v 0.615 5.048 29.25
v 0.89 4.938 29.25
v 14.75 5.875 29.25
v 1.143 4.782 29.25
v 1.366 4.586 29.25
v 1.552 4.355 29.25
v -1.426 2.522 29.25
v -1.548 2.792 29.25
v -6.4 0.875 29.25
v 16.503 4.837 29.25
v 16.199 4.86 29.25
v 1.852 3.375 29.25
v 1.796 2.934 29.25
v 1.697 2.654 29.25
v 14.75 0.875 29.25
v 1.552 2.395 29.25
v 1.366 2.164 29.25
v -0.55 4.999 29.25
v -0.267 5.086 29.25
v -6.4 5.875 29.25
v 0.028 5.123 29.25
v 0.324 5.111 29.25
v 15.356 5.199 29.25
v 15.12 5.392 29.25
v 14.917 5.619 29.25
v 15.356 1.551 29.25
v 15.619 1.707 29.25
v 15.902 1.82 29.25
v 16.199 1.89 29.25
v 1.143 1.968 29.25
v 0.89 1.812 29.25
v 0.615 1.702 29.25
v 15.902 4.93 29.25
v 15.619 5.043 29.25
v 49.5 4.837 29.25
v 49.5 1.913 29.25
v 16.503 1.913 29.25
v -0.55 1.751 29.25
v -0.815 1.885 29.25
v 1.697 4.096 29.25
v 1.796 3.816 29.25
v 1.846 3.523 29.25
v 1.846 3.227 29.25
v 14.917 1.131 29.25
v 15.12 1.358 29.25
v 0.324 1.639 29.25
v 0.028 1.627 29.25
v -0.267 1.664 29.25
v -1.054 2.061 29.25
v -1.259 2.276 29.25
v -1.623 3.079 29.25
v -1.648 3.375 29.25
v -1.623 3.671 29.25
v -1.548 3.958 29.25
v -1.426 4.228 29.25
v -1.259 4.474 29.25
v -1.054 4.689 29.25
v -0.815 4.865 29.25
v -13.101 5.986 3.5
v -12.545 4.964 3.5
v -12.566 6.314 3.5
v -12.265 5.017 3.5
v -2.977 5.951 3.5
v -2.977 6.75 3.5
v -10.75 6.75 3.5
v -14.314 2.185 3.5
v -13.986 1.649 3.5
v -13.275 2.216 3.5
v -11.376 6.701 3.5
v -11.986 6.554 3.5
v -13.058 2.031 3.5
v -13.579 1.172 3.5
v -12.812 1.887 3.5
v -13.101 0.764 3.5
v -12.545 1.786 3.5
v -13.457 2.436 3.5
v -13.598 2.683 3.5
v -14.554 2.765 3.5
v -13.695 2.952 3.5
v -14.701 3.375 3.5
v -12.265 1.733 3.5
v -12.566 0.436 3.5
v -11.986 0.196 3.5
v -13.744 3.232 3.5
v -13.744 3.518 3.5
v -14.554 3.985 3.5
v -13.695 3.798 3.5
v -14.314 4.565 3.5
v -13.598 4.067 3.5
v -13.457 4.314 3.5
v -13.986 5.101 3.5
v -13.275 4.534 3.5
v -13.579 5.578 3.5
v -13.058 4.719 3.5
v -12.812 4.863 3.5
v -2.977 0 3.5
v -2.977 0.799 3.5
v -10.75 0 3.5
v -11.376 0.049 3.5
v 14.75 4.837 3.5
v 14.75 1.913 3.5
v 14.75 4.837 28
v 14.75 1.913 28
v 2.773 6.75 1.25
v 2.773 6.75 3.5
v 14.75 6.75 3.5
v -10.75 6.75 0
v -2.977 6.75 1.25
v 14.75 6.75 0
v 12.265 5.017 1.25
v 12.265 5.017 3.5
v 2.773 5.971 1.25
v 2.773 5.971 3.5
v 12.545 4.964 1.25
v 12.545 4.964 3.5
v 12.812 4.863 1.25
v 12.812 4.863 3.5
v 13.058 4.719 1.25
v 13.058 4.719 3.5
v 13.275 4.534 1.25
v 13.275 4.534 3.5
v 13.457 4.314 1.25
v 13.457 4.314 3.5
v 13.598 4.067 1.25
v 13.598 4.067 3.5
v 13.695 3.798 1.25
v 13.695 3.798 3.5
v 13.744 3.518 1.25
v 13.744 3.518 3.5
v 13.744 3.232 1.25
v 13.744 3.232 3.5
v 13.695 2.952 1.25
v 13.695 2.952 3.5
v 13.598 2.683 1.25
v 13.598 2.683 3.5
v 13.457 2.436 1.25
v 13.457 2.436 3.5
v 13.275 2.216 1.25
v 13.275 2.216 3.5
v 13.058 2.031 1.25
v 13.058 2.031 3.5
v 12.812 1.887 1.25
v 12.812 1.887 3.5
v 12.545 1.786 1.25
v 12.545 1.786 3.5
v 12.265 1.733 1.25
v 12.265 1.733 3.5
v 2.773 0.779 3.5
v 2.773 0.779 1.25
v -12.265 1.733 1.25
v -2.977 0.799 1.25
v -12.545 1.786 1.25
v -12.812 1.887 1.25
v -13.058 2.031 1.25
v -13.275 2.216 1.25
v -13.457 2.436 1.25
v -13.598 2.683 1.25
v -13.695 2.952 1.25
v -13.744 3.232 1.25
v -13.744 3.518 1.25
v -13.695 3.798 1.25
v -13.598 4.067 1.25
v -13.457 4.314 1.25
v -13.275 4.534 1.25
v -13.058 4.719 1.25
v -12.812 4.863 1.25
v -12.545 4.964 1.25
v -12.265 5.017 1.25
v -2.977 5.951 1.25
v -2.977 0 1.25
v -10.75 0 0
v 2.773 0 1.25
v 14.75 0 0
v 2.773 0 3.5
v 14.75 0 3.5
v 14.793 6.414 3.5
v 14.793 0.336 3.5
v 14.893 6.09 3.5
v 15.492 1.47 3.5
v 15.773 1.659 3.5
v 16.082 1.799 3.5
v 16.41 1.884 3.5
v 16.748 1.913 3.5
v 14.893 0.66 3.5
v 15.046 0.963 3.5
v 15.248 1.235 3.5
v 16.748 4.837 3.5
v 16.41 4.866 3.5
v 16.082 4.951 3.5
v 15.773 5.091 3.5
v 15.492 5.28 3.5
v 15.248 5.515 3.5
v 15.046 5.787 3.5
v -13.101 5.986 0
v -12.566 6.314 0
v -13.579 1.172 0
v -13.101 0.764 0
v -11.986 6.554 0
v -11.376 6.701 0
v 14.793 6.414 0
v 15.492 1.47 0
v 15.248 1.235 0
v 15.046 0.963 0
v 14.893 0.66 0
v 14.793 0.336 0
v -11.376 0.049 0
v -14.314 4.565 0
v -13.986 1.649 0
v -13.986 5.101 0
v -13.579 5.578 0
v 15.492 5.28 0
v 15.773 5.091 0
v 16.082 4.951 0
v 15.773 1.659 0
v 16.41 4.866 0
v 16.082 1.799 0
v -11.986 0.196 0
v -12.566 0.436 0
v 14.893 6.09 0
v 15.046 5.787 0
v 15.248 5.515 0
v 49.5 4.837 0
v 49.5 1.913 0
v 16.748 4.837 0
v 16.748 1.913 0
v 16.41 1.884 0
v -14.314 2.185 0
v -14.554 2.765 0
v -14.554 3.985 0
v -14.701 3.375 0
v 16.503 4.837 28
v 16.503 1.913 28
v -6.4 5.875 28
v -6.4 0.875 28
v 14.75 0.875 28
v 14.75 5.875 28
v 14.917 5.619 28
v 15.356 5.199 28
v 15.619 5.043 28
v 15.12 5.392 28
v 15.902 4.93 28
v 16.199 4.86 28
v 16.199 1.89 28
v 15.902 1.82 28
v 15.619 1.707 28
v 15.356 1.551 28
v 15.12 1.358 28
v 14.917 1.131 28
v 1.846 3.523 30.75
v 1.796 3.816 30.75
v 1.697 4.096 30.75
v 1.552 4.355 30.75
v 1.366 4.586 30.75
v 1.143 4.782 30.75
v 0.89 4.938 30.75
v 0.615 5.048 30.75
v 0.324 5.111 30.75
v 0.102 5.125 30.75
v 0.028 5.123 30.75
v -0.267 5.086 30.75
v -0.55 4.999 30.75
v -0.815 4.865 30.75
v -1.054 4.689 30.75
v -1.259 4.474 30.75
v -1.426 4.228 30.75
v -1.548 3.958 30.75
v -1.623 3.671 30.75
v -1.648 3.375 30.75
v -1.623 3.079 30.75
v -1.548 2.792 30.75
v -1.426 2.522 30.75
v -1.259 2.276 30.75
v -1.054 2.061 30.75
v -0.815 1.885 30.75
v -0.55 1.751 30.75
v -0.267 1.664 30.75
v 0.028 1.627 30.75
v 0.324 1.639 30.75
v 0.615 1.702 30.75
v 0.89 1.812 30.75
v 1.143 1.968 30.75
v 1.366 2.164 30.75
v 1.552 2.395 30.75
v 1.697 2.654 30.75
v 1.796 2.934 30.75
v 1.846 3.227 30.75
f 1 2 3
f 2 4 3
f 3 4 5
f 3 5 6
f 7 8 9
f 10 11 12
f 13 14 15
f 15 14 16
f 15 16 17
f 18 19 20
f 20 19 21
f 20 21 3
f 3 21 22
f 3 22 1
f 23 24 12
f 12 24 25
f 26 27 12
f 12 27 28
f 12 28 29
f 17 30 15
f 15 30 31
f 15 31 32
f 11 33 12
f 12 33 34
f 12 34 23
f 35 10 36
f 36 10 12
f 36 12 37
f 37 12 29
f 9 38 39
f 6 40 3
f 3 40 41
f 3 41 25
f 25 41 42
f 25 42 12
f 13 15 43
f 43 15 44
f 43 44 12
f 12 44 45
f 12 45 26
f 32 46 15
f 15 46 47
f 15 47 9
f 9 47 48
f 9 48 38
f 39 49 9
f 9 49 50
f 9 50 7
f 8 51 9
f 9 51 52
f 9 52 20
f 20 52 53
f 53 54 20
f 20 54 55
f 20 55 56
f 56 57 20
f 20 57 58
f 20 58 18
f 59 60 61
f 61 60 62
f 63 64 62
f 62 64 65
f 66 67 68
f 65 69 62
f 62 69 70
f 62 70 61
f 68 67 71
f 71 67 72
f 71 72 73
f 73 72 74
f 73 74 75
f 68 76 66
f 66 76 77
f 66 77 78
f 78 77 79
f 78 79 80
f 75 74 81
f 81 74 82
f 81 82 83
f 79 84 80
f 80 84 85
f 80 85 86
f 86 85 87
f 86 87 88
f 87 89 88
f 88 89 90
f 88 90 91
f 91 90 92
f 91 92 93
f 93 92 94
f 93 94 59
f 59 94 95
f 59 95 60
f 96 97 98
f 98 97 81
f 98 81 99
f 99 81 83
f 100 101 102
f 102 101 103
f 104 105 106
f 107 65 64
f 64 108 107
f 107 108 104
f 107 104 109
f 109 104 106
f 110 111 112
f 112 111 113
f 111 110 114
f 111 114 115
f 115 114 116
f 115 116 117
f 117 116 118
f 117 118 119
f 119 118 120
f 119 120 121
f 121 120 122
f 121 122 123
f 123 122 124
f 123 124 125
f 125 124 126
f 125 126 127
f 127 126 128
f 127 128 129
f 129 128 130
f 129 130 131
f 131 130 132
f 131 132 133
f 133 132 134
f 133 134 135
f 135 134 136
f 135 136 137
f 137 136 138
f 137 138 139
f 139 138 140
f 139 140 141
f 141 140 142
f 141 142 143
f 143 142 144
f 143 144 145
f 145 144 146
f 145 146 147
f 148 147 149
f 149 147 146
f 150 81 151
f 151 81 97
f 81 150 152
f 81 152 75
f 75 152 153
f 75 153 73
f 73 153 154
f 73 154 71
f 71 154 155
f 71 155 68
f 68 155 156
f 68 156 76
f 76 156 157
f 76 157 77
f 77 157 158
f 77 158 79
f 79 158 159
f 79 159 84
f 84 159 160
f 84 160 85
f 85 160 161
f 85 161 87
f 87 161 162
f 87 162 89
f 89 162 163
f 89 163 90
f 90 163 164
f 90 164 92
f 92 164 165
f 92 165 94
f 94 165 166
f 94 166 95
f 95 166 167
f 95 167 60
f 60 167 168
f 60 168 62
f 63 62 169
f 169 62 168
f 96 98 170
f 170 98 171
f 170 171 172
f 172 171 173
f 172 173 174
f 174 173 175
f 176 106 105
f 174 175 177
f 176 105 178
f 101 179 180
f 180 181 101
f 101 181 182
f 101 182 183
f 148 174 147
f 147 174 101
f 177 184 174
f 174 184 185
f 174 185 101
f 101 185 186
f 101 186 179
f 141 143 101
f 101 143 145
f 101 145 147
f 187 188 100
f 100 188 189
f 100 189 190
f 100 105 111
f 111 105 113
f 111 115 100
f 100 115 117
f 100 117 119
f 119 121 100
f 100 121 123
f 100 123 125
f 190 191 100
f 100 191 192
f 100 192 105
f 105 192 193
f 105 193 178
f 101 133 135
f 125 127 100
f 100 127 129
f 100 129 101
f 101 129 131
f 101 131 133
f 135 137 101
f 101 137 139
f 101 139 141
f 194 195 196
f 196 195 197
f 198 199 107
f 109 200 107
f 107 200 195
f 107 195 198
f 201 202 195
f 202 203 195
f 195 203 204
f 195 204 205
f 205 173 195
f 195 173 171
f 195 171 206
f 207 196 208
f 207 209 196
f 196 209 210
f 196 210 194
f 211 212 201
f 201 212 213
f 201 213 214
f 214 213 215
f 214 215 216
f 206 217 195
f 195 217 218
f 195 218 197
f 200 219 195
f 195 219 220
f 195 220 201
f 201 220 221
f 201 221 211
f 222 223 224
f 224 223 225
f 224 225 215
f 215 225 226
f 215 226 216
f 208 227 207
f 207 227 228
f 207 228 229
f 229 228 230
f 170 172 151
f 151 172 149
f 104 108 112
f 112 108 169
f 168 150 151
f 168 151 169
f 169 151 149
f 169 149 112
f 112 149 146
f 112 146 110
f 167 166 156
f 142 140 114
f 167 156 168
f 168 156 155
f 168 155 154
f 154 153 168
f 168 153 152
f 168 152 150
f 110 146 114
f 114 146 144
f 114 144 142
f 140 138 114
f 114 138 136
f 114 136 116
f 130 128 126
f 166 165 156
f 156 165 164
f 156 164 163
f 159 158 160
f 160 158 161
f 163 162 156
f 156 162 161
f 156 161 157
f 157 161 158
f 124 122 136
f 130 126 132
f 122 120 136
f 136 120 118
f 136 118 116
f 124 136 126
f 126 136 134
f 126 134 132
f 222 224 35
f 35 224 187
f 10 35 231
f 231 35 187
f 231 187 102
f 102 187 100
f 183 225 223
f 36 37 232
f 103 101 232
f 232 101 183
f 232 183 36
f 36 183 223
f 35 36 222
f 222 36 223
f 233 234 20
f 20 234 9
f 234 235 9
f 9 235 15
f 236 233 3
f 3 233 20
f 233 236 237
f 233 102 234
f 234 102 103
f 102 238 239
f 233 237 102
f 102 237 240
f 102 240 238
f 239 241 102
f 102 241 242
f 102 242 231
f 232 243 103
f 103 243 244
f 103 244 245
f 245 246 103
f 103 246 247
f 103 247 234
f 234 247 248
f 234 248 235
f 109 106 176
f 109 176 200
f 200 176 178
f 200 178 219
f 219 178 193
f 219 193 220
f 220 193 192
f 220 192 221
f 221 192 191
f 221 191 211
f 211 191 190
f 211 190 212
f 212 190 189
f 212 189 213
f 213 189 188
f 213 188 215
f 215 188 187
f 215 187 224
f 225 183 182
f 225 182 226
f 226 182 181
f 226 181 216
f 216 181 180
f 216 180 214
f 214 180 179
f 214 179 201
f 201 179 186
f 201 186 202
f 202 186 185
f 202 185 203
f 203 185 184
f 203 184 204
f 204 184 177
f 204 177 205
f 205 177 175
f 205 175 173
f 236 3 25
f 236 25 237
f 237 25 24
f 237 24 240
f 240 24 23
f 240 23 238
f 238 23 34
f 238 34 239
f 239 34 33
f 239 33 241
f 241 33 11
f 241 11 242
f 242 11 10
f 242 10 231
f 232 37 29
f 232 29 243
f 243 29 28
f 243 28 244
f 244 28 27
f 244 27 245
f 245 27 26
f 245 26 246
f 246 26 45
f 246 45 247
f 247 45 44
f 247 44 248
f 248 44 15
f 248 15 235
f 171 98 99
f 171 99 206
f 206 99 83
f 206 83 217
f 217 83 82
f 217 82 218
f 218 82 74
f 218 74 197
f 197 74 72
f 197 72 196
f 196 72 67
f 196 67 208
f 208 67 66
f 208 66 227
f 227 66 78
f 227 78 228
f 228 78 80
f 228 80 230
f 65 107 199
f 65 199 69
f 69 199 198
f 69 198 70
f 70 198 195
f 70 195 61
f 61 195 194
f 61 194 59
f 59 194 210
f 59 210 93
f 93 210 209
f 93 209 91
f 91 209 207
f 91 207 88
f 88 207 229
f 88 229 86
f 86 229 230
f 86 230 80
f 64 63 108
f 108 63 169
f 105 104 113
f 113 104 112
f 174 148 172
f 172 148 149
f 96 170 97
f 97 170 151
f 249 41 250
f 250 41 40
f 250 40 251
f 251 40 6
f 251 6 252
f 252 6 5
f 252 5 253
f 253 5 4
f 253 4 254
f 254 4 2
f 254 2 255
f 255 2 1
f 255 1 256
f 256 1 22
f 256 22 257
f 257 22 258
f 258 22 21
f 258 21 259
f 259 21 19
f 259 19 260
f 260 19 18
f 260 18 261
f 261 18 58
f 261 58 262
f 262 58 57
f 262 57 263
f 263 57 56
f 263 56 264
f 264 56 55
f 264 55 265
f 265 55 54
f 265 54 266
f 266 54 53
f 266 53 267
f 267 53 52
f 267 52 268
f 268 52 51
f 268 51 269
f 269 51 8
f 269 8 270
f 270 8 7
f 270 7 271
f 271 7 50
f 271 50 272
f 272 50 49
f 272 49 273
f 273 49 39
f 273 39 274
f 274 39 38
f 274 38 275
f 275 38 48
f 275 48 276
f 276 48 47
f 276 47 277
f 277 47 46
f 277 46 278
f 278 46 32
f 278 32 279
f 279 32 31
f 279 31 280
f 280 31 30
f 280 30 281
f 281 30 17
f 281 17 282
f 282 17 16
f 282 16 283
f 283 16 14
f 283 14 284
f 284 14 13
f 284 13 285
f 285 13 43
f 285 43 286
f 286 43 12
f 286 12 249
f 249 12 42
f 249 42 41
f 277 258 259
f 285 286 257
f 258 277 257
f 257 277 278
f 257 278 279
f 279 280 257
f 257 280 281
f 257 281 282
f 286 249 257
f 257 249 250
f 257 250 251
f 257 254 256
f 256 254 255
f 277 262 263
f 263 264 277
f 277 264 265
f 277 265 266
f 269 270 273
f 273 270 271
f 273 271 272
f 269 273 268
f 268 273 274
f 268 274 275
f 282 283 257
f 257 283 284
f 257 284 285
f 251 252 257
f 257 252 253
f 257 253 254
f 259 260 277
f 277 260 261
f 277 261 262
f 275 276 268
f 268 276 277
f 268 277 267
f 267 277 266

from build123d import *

# Parameters (mm, degrees)
SKETCH1_W            = 29.5
SKETCH1_H            = 6.75
BOSS_EXTRUDE10_DEPTH = 3.5
SKETCH1_16_R         = 0.291434634
BOSS_EXTRUDE15_DEPTH = 1.25
SKETCH1_17_W         = 34.75
SKETCH1_17_H         = 2.924143722
BOSS_EXTRUDE17_DEPTH = 29.25
SKETCH2_W            = 21.15
SKETCH2_H            = 5
BOSS_EXTRUDE18_DEPTH = 1.25
FILLET1_R            = 2
FILLET2_R            = 4
CUT_EXTRUDE1_START   = -2.25
SKETCH3_W            = 5.75
SKETCH3_H            = 1.125
CUT_EXTRUDE1_DEPTH   = 2.25
SKETCH4_R            = 1.75
BOSS_EXTRUDE19_DEPTH = 1.5


with BuildPart() as part:
    # Sketch1 → Boss-Extrude10 (new body)
    with BuildSketch(Plane.XY):
        with Locations((0, 3.375)):
            Rectangle(SKETCH1_W, SKETCH1_H)
        with BuildLine():
            Line((-12.265078429, 5.016721387), (0, 6.25))
            Line((0, 6.25), (12.265078429, 5.016721387))
            ThreePointArc((12.265078429, 5.016721387), (13.75, 3.375), (12.265078429, 1.733278613))
            Line((12.265078429, 1.733278613), (0, 0.5))
            Line((0, 0.5), (-12.265078429, 1.733278613))
            ThreePointArc((-12.265078429, 1.733278613), (-13.75, 3.375), (-12.265078429, 5.016721387))
        make_face(mode=Mode.SUBTRACT)
    extrude(amount=BOSS_EXTRUDE10_DEPTH)

    # Sketch1<16> → Boss-Extrude15 (add)
    # profile 1 of 9: a face of its own
    with BuildSketch(Plane.XY):
        with BuildLine():
            Line((-0.57238697, 6.192445325), (-12.265078429, 5.016721387))
            ThreePointArc((-12.265078429, 5.016721387), (-13.75, 3.375), (-12.265078429, 1.733278613))
            Line((-12.265078429, 1.733278613), (-0.57238697, 0.557554675))
            ThreePointArc((-0.57238697, 0.557554675), (-2.875, 3.375), (-0.57238697, 6.192445325))
        make_face()
        with Locations((-12.1, 3.375)):
            Circle(SKETCH1_16_R, mode=Mode.SUBTRACT)
        with Locations((-10.063185408, 3.375)):
            Circle(SKETCH1_16_R, mode=Mode.SUBTRACT)
        with Locations((-8.026370816, 3.375)):
            Circle(SKETCH1_16_R, mode=Mode.SUBTRACT)
    # profile 2 of 9: a face of its own
    with BuildSketch(Plane.XY):
        with Locations((-12.1, 3.375)):
            Circle(SKETCH1_16_R)
    # profile 3 of 9: a face of its own
    with BuildSketch(Plane.XY):
        with Locations((-8.026370816, 3.375)):
            Circle(SKETCH1_16_R)
    # profile 4 of 9: a face of its own
    with BuildSketch(Plane.XY):
        with Locations((-10.063185408, 3.375)):
            Circle(SKETCH1_16_R)
    # profile 5 of 9: a face of its own
    with BuildSketch(Plane.XY):
        with BuildLine():
            Line((0, 6.25), (-0.57238697, 6.192445325))
            ThreePointArc((-0.57238697, 6.192445325), (-2.875, 3.375), (-0.57238697, 0.557554675))
            Line((-0.57238697, 0.557554675), (0, 0.5))
            Line((0, 0.5), (0.57238697, 0.557554675))
            ThreePointArc((0.57238697, 0.557554675), (2.226121912, 1.555657748), (2.875, 3.375))
            ThreePointArc((2.875, 3.375), (2.226121912, 5.194342252), (0.57238697, 6.192445325))
            Line((0.57238697, 6.192445325), (0, 6.25))
        make_face()
    # profile 6 of 9: a face of its own
    with BuildSketch(Plane.XY):
        with BuildLine():
            Line((12.265078429, 5.016721387), (0.57238697, 6.192445325))
            ThreePointArc((0.57238697, 6.192445325), (2.226121912, 5.194342252), (2.875, 3.375))
            ThreePointArc((2.875, 3.375), (2.226121912, 1.555657748), (0.57238697, 0.557554675))
            Line((0.57238697, 0.557554675), (12.265078429, 1.733278613))
            ThreePointArc((12.265078429, 1.733278613), (13.75, 3.375), (12.265078429, 5.016721387))
        make_face()
        with Locations((8.026370816, 3.375)):
            Circle(SKETCH1_16_R, mode=Mode.SUBTRACT)
        with Locations((10.063185408, 3.375)):
            Circle(SKETCH1_16_R, mode=Mode.SUBTRACT)
        with Locations((12.1, 3.375)):
            Circle(SKETCH1_16_R, mode=Mode.SUBTRACT)
    # profile 7 of 9: a face of its own
    with BuildSketch(Plane.XY):
        with Locations((12.1, 3.375)):
            Circle(SKETCH1_16_R)
    # profile 8 of 9: a face of its own
    with BuildSketch(Plane.XY):
        with Locations((10.063185408, 3.375)):
            Circle(SKETCH1_16_R)
    # profile 9 of 9: a face of its own
    with BuildSketch(Plane.XY):
        with Locations((8.026370816, 3.375)):
            Circle(SKETCH1_16_R)
    extrude(amount=BOSS_EXTRUDE15_DEPTH)

    # Sketch1<17> → Boss-Extrude17 (add)
    with BuildSketch(Plane.XY):
        with Locations((32.125, 3.375)):
            Rectangle(SKETCH1_17_W, SKETCH1_17_H)
    extrude(amount=BOSS_EXTRUDE17_DEPTH)

    # Sketch2 → Boss-Extrude18 (add)
    with BuildSketch(Plane.XY.offset(29.25)):
        with Locations((4.175, 3.375)):
            Rectangle(SKETCH2_W, SKETCH2_H)
    extrude(amount=-BOSS_EXTRUDE18_DEPTH)

    # Fillet1
    # the kernel refuses this fillet: 2 mm, written as the material it adds along each edge
    with BuildSketch(Plane(origin=(14.75, 1.912928139, 0), x_dir=(0, -1, 0), z_dir=(0, 0, 1))) as fillet1_piece_1:
        with BuildLine():
            CenterArc((2, 1.998103724), FILLET1_R, 180, 87.504786267)
            Line((0, 1.998103724), (0, 0))
            Line((0, 0), (1.912928139, 0))
        make_face()
    extrude(amount=3.5)
    with BuildSketch(Plane(origin=(14.75, 4.837071861, 0), x_dir=(1, 0, 0), z_dir=(0, 0, 1))) as fillet1_piece_2:
        with BuildLine():
            CenterArc((1.998103724, 2), FILLET1_R, 182.495213733, 87.504786267)
            Line((0, 1.912928139), (0, 0))
            Line((0, 0), (1.998103724, 0))
        make_face()
    extrude(amount=3.5)
    with BuildSketch(Plane(origin=(14.75, 4.837071861, 28), x_dir=(1, 0, 0), z_dir=(0, 0, 1))) as fillet1_piece_3:
        with BuildLine():
            CenterArc((1.753401761, 2), FILLET1_R, 208.753082152, 61.246917848)
            Line((0, 1.037928139), (0, 0))
            Line((0, 0), (1.753401761, 0))
        make_face()
    extrude(amount=1.25)
    with BuildSketch(Plane(origin=(14.75, 1.912928139, 28), x_dir=(1, 0, 0), z_dir=(0, 0, 1))) as fillet1_piece_4:
        with BuildLine():
            CenterArc((1.753401761, -2), FILLET1_R, 90, 61.246917848)
            Line((0, -1.037928139), (0, 0))
            Line((0, 0), (1.753401761, 0))
        make_face()
    extrude(amount=1.25)

    # Fillet2
    # the kernel refuses this fillet: 4 mm, written as the material it takes off along each edge
    with BuildSketch(Plane(origin=(-14.75, 6.75, -10), x_dir=(0, -1, 0), z_dir=(0, 0, 1)), Plane(origin=(-14.75, 0, -10), x_dir=(1, 0, 0), z_dir=(0, 0, 1))) as fillet2_piece_1:
        with BuildLine():
            CenterArc((FILLET2_R, FILLET2_R), FILLET2_R, 180, 90)
            Line((0, FILLET2_R), (0, 0))
            Line((0, 0), (FILLET2_R, 0))
        make_face()
    extrude(amount=23.5, mode=Mode.SUBTRACT)

    # Sketch3 → Cut-Extrude1 (cut)
    with BuildSketch(Plane.XY.offset(3.5).offset(CUT_EXTRUDE1_START)):
        with Locations((-0.102107464, 6.1875)):
            Rectangle(SKETCH3_W, SKETCH3_H)
        with Locations((-0.102107464, 0.5625)):
            Rectangle(SKETCH3_W, SKETCH3_H)
    extrude(amount=CUT_EXTRUDE1_DEPTH, mode=Mode.SUBTRACT)

    # Sketch4 → Boss-Extrude19 (add)
    with BuildSketch(Plane.XY.offset(29.25)):
        with Locations((0.102107464, 3.375)):
            Circle(SKETCH4_R)
    extrude(amount=BOSS_EXTRUDE19_DEPTH)


solid = part.part
